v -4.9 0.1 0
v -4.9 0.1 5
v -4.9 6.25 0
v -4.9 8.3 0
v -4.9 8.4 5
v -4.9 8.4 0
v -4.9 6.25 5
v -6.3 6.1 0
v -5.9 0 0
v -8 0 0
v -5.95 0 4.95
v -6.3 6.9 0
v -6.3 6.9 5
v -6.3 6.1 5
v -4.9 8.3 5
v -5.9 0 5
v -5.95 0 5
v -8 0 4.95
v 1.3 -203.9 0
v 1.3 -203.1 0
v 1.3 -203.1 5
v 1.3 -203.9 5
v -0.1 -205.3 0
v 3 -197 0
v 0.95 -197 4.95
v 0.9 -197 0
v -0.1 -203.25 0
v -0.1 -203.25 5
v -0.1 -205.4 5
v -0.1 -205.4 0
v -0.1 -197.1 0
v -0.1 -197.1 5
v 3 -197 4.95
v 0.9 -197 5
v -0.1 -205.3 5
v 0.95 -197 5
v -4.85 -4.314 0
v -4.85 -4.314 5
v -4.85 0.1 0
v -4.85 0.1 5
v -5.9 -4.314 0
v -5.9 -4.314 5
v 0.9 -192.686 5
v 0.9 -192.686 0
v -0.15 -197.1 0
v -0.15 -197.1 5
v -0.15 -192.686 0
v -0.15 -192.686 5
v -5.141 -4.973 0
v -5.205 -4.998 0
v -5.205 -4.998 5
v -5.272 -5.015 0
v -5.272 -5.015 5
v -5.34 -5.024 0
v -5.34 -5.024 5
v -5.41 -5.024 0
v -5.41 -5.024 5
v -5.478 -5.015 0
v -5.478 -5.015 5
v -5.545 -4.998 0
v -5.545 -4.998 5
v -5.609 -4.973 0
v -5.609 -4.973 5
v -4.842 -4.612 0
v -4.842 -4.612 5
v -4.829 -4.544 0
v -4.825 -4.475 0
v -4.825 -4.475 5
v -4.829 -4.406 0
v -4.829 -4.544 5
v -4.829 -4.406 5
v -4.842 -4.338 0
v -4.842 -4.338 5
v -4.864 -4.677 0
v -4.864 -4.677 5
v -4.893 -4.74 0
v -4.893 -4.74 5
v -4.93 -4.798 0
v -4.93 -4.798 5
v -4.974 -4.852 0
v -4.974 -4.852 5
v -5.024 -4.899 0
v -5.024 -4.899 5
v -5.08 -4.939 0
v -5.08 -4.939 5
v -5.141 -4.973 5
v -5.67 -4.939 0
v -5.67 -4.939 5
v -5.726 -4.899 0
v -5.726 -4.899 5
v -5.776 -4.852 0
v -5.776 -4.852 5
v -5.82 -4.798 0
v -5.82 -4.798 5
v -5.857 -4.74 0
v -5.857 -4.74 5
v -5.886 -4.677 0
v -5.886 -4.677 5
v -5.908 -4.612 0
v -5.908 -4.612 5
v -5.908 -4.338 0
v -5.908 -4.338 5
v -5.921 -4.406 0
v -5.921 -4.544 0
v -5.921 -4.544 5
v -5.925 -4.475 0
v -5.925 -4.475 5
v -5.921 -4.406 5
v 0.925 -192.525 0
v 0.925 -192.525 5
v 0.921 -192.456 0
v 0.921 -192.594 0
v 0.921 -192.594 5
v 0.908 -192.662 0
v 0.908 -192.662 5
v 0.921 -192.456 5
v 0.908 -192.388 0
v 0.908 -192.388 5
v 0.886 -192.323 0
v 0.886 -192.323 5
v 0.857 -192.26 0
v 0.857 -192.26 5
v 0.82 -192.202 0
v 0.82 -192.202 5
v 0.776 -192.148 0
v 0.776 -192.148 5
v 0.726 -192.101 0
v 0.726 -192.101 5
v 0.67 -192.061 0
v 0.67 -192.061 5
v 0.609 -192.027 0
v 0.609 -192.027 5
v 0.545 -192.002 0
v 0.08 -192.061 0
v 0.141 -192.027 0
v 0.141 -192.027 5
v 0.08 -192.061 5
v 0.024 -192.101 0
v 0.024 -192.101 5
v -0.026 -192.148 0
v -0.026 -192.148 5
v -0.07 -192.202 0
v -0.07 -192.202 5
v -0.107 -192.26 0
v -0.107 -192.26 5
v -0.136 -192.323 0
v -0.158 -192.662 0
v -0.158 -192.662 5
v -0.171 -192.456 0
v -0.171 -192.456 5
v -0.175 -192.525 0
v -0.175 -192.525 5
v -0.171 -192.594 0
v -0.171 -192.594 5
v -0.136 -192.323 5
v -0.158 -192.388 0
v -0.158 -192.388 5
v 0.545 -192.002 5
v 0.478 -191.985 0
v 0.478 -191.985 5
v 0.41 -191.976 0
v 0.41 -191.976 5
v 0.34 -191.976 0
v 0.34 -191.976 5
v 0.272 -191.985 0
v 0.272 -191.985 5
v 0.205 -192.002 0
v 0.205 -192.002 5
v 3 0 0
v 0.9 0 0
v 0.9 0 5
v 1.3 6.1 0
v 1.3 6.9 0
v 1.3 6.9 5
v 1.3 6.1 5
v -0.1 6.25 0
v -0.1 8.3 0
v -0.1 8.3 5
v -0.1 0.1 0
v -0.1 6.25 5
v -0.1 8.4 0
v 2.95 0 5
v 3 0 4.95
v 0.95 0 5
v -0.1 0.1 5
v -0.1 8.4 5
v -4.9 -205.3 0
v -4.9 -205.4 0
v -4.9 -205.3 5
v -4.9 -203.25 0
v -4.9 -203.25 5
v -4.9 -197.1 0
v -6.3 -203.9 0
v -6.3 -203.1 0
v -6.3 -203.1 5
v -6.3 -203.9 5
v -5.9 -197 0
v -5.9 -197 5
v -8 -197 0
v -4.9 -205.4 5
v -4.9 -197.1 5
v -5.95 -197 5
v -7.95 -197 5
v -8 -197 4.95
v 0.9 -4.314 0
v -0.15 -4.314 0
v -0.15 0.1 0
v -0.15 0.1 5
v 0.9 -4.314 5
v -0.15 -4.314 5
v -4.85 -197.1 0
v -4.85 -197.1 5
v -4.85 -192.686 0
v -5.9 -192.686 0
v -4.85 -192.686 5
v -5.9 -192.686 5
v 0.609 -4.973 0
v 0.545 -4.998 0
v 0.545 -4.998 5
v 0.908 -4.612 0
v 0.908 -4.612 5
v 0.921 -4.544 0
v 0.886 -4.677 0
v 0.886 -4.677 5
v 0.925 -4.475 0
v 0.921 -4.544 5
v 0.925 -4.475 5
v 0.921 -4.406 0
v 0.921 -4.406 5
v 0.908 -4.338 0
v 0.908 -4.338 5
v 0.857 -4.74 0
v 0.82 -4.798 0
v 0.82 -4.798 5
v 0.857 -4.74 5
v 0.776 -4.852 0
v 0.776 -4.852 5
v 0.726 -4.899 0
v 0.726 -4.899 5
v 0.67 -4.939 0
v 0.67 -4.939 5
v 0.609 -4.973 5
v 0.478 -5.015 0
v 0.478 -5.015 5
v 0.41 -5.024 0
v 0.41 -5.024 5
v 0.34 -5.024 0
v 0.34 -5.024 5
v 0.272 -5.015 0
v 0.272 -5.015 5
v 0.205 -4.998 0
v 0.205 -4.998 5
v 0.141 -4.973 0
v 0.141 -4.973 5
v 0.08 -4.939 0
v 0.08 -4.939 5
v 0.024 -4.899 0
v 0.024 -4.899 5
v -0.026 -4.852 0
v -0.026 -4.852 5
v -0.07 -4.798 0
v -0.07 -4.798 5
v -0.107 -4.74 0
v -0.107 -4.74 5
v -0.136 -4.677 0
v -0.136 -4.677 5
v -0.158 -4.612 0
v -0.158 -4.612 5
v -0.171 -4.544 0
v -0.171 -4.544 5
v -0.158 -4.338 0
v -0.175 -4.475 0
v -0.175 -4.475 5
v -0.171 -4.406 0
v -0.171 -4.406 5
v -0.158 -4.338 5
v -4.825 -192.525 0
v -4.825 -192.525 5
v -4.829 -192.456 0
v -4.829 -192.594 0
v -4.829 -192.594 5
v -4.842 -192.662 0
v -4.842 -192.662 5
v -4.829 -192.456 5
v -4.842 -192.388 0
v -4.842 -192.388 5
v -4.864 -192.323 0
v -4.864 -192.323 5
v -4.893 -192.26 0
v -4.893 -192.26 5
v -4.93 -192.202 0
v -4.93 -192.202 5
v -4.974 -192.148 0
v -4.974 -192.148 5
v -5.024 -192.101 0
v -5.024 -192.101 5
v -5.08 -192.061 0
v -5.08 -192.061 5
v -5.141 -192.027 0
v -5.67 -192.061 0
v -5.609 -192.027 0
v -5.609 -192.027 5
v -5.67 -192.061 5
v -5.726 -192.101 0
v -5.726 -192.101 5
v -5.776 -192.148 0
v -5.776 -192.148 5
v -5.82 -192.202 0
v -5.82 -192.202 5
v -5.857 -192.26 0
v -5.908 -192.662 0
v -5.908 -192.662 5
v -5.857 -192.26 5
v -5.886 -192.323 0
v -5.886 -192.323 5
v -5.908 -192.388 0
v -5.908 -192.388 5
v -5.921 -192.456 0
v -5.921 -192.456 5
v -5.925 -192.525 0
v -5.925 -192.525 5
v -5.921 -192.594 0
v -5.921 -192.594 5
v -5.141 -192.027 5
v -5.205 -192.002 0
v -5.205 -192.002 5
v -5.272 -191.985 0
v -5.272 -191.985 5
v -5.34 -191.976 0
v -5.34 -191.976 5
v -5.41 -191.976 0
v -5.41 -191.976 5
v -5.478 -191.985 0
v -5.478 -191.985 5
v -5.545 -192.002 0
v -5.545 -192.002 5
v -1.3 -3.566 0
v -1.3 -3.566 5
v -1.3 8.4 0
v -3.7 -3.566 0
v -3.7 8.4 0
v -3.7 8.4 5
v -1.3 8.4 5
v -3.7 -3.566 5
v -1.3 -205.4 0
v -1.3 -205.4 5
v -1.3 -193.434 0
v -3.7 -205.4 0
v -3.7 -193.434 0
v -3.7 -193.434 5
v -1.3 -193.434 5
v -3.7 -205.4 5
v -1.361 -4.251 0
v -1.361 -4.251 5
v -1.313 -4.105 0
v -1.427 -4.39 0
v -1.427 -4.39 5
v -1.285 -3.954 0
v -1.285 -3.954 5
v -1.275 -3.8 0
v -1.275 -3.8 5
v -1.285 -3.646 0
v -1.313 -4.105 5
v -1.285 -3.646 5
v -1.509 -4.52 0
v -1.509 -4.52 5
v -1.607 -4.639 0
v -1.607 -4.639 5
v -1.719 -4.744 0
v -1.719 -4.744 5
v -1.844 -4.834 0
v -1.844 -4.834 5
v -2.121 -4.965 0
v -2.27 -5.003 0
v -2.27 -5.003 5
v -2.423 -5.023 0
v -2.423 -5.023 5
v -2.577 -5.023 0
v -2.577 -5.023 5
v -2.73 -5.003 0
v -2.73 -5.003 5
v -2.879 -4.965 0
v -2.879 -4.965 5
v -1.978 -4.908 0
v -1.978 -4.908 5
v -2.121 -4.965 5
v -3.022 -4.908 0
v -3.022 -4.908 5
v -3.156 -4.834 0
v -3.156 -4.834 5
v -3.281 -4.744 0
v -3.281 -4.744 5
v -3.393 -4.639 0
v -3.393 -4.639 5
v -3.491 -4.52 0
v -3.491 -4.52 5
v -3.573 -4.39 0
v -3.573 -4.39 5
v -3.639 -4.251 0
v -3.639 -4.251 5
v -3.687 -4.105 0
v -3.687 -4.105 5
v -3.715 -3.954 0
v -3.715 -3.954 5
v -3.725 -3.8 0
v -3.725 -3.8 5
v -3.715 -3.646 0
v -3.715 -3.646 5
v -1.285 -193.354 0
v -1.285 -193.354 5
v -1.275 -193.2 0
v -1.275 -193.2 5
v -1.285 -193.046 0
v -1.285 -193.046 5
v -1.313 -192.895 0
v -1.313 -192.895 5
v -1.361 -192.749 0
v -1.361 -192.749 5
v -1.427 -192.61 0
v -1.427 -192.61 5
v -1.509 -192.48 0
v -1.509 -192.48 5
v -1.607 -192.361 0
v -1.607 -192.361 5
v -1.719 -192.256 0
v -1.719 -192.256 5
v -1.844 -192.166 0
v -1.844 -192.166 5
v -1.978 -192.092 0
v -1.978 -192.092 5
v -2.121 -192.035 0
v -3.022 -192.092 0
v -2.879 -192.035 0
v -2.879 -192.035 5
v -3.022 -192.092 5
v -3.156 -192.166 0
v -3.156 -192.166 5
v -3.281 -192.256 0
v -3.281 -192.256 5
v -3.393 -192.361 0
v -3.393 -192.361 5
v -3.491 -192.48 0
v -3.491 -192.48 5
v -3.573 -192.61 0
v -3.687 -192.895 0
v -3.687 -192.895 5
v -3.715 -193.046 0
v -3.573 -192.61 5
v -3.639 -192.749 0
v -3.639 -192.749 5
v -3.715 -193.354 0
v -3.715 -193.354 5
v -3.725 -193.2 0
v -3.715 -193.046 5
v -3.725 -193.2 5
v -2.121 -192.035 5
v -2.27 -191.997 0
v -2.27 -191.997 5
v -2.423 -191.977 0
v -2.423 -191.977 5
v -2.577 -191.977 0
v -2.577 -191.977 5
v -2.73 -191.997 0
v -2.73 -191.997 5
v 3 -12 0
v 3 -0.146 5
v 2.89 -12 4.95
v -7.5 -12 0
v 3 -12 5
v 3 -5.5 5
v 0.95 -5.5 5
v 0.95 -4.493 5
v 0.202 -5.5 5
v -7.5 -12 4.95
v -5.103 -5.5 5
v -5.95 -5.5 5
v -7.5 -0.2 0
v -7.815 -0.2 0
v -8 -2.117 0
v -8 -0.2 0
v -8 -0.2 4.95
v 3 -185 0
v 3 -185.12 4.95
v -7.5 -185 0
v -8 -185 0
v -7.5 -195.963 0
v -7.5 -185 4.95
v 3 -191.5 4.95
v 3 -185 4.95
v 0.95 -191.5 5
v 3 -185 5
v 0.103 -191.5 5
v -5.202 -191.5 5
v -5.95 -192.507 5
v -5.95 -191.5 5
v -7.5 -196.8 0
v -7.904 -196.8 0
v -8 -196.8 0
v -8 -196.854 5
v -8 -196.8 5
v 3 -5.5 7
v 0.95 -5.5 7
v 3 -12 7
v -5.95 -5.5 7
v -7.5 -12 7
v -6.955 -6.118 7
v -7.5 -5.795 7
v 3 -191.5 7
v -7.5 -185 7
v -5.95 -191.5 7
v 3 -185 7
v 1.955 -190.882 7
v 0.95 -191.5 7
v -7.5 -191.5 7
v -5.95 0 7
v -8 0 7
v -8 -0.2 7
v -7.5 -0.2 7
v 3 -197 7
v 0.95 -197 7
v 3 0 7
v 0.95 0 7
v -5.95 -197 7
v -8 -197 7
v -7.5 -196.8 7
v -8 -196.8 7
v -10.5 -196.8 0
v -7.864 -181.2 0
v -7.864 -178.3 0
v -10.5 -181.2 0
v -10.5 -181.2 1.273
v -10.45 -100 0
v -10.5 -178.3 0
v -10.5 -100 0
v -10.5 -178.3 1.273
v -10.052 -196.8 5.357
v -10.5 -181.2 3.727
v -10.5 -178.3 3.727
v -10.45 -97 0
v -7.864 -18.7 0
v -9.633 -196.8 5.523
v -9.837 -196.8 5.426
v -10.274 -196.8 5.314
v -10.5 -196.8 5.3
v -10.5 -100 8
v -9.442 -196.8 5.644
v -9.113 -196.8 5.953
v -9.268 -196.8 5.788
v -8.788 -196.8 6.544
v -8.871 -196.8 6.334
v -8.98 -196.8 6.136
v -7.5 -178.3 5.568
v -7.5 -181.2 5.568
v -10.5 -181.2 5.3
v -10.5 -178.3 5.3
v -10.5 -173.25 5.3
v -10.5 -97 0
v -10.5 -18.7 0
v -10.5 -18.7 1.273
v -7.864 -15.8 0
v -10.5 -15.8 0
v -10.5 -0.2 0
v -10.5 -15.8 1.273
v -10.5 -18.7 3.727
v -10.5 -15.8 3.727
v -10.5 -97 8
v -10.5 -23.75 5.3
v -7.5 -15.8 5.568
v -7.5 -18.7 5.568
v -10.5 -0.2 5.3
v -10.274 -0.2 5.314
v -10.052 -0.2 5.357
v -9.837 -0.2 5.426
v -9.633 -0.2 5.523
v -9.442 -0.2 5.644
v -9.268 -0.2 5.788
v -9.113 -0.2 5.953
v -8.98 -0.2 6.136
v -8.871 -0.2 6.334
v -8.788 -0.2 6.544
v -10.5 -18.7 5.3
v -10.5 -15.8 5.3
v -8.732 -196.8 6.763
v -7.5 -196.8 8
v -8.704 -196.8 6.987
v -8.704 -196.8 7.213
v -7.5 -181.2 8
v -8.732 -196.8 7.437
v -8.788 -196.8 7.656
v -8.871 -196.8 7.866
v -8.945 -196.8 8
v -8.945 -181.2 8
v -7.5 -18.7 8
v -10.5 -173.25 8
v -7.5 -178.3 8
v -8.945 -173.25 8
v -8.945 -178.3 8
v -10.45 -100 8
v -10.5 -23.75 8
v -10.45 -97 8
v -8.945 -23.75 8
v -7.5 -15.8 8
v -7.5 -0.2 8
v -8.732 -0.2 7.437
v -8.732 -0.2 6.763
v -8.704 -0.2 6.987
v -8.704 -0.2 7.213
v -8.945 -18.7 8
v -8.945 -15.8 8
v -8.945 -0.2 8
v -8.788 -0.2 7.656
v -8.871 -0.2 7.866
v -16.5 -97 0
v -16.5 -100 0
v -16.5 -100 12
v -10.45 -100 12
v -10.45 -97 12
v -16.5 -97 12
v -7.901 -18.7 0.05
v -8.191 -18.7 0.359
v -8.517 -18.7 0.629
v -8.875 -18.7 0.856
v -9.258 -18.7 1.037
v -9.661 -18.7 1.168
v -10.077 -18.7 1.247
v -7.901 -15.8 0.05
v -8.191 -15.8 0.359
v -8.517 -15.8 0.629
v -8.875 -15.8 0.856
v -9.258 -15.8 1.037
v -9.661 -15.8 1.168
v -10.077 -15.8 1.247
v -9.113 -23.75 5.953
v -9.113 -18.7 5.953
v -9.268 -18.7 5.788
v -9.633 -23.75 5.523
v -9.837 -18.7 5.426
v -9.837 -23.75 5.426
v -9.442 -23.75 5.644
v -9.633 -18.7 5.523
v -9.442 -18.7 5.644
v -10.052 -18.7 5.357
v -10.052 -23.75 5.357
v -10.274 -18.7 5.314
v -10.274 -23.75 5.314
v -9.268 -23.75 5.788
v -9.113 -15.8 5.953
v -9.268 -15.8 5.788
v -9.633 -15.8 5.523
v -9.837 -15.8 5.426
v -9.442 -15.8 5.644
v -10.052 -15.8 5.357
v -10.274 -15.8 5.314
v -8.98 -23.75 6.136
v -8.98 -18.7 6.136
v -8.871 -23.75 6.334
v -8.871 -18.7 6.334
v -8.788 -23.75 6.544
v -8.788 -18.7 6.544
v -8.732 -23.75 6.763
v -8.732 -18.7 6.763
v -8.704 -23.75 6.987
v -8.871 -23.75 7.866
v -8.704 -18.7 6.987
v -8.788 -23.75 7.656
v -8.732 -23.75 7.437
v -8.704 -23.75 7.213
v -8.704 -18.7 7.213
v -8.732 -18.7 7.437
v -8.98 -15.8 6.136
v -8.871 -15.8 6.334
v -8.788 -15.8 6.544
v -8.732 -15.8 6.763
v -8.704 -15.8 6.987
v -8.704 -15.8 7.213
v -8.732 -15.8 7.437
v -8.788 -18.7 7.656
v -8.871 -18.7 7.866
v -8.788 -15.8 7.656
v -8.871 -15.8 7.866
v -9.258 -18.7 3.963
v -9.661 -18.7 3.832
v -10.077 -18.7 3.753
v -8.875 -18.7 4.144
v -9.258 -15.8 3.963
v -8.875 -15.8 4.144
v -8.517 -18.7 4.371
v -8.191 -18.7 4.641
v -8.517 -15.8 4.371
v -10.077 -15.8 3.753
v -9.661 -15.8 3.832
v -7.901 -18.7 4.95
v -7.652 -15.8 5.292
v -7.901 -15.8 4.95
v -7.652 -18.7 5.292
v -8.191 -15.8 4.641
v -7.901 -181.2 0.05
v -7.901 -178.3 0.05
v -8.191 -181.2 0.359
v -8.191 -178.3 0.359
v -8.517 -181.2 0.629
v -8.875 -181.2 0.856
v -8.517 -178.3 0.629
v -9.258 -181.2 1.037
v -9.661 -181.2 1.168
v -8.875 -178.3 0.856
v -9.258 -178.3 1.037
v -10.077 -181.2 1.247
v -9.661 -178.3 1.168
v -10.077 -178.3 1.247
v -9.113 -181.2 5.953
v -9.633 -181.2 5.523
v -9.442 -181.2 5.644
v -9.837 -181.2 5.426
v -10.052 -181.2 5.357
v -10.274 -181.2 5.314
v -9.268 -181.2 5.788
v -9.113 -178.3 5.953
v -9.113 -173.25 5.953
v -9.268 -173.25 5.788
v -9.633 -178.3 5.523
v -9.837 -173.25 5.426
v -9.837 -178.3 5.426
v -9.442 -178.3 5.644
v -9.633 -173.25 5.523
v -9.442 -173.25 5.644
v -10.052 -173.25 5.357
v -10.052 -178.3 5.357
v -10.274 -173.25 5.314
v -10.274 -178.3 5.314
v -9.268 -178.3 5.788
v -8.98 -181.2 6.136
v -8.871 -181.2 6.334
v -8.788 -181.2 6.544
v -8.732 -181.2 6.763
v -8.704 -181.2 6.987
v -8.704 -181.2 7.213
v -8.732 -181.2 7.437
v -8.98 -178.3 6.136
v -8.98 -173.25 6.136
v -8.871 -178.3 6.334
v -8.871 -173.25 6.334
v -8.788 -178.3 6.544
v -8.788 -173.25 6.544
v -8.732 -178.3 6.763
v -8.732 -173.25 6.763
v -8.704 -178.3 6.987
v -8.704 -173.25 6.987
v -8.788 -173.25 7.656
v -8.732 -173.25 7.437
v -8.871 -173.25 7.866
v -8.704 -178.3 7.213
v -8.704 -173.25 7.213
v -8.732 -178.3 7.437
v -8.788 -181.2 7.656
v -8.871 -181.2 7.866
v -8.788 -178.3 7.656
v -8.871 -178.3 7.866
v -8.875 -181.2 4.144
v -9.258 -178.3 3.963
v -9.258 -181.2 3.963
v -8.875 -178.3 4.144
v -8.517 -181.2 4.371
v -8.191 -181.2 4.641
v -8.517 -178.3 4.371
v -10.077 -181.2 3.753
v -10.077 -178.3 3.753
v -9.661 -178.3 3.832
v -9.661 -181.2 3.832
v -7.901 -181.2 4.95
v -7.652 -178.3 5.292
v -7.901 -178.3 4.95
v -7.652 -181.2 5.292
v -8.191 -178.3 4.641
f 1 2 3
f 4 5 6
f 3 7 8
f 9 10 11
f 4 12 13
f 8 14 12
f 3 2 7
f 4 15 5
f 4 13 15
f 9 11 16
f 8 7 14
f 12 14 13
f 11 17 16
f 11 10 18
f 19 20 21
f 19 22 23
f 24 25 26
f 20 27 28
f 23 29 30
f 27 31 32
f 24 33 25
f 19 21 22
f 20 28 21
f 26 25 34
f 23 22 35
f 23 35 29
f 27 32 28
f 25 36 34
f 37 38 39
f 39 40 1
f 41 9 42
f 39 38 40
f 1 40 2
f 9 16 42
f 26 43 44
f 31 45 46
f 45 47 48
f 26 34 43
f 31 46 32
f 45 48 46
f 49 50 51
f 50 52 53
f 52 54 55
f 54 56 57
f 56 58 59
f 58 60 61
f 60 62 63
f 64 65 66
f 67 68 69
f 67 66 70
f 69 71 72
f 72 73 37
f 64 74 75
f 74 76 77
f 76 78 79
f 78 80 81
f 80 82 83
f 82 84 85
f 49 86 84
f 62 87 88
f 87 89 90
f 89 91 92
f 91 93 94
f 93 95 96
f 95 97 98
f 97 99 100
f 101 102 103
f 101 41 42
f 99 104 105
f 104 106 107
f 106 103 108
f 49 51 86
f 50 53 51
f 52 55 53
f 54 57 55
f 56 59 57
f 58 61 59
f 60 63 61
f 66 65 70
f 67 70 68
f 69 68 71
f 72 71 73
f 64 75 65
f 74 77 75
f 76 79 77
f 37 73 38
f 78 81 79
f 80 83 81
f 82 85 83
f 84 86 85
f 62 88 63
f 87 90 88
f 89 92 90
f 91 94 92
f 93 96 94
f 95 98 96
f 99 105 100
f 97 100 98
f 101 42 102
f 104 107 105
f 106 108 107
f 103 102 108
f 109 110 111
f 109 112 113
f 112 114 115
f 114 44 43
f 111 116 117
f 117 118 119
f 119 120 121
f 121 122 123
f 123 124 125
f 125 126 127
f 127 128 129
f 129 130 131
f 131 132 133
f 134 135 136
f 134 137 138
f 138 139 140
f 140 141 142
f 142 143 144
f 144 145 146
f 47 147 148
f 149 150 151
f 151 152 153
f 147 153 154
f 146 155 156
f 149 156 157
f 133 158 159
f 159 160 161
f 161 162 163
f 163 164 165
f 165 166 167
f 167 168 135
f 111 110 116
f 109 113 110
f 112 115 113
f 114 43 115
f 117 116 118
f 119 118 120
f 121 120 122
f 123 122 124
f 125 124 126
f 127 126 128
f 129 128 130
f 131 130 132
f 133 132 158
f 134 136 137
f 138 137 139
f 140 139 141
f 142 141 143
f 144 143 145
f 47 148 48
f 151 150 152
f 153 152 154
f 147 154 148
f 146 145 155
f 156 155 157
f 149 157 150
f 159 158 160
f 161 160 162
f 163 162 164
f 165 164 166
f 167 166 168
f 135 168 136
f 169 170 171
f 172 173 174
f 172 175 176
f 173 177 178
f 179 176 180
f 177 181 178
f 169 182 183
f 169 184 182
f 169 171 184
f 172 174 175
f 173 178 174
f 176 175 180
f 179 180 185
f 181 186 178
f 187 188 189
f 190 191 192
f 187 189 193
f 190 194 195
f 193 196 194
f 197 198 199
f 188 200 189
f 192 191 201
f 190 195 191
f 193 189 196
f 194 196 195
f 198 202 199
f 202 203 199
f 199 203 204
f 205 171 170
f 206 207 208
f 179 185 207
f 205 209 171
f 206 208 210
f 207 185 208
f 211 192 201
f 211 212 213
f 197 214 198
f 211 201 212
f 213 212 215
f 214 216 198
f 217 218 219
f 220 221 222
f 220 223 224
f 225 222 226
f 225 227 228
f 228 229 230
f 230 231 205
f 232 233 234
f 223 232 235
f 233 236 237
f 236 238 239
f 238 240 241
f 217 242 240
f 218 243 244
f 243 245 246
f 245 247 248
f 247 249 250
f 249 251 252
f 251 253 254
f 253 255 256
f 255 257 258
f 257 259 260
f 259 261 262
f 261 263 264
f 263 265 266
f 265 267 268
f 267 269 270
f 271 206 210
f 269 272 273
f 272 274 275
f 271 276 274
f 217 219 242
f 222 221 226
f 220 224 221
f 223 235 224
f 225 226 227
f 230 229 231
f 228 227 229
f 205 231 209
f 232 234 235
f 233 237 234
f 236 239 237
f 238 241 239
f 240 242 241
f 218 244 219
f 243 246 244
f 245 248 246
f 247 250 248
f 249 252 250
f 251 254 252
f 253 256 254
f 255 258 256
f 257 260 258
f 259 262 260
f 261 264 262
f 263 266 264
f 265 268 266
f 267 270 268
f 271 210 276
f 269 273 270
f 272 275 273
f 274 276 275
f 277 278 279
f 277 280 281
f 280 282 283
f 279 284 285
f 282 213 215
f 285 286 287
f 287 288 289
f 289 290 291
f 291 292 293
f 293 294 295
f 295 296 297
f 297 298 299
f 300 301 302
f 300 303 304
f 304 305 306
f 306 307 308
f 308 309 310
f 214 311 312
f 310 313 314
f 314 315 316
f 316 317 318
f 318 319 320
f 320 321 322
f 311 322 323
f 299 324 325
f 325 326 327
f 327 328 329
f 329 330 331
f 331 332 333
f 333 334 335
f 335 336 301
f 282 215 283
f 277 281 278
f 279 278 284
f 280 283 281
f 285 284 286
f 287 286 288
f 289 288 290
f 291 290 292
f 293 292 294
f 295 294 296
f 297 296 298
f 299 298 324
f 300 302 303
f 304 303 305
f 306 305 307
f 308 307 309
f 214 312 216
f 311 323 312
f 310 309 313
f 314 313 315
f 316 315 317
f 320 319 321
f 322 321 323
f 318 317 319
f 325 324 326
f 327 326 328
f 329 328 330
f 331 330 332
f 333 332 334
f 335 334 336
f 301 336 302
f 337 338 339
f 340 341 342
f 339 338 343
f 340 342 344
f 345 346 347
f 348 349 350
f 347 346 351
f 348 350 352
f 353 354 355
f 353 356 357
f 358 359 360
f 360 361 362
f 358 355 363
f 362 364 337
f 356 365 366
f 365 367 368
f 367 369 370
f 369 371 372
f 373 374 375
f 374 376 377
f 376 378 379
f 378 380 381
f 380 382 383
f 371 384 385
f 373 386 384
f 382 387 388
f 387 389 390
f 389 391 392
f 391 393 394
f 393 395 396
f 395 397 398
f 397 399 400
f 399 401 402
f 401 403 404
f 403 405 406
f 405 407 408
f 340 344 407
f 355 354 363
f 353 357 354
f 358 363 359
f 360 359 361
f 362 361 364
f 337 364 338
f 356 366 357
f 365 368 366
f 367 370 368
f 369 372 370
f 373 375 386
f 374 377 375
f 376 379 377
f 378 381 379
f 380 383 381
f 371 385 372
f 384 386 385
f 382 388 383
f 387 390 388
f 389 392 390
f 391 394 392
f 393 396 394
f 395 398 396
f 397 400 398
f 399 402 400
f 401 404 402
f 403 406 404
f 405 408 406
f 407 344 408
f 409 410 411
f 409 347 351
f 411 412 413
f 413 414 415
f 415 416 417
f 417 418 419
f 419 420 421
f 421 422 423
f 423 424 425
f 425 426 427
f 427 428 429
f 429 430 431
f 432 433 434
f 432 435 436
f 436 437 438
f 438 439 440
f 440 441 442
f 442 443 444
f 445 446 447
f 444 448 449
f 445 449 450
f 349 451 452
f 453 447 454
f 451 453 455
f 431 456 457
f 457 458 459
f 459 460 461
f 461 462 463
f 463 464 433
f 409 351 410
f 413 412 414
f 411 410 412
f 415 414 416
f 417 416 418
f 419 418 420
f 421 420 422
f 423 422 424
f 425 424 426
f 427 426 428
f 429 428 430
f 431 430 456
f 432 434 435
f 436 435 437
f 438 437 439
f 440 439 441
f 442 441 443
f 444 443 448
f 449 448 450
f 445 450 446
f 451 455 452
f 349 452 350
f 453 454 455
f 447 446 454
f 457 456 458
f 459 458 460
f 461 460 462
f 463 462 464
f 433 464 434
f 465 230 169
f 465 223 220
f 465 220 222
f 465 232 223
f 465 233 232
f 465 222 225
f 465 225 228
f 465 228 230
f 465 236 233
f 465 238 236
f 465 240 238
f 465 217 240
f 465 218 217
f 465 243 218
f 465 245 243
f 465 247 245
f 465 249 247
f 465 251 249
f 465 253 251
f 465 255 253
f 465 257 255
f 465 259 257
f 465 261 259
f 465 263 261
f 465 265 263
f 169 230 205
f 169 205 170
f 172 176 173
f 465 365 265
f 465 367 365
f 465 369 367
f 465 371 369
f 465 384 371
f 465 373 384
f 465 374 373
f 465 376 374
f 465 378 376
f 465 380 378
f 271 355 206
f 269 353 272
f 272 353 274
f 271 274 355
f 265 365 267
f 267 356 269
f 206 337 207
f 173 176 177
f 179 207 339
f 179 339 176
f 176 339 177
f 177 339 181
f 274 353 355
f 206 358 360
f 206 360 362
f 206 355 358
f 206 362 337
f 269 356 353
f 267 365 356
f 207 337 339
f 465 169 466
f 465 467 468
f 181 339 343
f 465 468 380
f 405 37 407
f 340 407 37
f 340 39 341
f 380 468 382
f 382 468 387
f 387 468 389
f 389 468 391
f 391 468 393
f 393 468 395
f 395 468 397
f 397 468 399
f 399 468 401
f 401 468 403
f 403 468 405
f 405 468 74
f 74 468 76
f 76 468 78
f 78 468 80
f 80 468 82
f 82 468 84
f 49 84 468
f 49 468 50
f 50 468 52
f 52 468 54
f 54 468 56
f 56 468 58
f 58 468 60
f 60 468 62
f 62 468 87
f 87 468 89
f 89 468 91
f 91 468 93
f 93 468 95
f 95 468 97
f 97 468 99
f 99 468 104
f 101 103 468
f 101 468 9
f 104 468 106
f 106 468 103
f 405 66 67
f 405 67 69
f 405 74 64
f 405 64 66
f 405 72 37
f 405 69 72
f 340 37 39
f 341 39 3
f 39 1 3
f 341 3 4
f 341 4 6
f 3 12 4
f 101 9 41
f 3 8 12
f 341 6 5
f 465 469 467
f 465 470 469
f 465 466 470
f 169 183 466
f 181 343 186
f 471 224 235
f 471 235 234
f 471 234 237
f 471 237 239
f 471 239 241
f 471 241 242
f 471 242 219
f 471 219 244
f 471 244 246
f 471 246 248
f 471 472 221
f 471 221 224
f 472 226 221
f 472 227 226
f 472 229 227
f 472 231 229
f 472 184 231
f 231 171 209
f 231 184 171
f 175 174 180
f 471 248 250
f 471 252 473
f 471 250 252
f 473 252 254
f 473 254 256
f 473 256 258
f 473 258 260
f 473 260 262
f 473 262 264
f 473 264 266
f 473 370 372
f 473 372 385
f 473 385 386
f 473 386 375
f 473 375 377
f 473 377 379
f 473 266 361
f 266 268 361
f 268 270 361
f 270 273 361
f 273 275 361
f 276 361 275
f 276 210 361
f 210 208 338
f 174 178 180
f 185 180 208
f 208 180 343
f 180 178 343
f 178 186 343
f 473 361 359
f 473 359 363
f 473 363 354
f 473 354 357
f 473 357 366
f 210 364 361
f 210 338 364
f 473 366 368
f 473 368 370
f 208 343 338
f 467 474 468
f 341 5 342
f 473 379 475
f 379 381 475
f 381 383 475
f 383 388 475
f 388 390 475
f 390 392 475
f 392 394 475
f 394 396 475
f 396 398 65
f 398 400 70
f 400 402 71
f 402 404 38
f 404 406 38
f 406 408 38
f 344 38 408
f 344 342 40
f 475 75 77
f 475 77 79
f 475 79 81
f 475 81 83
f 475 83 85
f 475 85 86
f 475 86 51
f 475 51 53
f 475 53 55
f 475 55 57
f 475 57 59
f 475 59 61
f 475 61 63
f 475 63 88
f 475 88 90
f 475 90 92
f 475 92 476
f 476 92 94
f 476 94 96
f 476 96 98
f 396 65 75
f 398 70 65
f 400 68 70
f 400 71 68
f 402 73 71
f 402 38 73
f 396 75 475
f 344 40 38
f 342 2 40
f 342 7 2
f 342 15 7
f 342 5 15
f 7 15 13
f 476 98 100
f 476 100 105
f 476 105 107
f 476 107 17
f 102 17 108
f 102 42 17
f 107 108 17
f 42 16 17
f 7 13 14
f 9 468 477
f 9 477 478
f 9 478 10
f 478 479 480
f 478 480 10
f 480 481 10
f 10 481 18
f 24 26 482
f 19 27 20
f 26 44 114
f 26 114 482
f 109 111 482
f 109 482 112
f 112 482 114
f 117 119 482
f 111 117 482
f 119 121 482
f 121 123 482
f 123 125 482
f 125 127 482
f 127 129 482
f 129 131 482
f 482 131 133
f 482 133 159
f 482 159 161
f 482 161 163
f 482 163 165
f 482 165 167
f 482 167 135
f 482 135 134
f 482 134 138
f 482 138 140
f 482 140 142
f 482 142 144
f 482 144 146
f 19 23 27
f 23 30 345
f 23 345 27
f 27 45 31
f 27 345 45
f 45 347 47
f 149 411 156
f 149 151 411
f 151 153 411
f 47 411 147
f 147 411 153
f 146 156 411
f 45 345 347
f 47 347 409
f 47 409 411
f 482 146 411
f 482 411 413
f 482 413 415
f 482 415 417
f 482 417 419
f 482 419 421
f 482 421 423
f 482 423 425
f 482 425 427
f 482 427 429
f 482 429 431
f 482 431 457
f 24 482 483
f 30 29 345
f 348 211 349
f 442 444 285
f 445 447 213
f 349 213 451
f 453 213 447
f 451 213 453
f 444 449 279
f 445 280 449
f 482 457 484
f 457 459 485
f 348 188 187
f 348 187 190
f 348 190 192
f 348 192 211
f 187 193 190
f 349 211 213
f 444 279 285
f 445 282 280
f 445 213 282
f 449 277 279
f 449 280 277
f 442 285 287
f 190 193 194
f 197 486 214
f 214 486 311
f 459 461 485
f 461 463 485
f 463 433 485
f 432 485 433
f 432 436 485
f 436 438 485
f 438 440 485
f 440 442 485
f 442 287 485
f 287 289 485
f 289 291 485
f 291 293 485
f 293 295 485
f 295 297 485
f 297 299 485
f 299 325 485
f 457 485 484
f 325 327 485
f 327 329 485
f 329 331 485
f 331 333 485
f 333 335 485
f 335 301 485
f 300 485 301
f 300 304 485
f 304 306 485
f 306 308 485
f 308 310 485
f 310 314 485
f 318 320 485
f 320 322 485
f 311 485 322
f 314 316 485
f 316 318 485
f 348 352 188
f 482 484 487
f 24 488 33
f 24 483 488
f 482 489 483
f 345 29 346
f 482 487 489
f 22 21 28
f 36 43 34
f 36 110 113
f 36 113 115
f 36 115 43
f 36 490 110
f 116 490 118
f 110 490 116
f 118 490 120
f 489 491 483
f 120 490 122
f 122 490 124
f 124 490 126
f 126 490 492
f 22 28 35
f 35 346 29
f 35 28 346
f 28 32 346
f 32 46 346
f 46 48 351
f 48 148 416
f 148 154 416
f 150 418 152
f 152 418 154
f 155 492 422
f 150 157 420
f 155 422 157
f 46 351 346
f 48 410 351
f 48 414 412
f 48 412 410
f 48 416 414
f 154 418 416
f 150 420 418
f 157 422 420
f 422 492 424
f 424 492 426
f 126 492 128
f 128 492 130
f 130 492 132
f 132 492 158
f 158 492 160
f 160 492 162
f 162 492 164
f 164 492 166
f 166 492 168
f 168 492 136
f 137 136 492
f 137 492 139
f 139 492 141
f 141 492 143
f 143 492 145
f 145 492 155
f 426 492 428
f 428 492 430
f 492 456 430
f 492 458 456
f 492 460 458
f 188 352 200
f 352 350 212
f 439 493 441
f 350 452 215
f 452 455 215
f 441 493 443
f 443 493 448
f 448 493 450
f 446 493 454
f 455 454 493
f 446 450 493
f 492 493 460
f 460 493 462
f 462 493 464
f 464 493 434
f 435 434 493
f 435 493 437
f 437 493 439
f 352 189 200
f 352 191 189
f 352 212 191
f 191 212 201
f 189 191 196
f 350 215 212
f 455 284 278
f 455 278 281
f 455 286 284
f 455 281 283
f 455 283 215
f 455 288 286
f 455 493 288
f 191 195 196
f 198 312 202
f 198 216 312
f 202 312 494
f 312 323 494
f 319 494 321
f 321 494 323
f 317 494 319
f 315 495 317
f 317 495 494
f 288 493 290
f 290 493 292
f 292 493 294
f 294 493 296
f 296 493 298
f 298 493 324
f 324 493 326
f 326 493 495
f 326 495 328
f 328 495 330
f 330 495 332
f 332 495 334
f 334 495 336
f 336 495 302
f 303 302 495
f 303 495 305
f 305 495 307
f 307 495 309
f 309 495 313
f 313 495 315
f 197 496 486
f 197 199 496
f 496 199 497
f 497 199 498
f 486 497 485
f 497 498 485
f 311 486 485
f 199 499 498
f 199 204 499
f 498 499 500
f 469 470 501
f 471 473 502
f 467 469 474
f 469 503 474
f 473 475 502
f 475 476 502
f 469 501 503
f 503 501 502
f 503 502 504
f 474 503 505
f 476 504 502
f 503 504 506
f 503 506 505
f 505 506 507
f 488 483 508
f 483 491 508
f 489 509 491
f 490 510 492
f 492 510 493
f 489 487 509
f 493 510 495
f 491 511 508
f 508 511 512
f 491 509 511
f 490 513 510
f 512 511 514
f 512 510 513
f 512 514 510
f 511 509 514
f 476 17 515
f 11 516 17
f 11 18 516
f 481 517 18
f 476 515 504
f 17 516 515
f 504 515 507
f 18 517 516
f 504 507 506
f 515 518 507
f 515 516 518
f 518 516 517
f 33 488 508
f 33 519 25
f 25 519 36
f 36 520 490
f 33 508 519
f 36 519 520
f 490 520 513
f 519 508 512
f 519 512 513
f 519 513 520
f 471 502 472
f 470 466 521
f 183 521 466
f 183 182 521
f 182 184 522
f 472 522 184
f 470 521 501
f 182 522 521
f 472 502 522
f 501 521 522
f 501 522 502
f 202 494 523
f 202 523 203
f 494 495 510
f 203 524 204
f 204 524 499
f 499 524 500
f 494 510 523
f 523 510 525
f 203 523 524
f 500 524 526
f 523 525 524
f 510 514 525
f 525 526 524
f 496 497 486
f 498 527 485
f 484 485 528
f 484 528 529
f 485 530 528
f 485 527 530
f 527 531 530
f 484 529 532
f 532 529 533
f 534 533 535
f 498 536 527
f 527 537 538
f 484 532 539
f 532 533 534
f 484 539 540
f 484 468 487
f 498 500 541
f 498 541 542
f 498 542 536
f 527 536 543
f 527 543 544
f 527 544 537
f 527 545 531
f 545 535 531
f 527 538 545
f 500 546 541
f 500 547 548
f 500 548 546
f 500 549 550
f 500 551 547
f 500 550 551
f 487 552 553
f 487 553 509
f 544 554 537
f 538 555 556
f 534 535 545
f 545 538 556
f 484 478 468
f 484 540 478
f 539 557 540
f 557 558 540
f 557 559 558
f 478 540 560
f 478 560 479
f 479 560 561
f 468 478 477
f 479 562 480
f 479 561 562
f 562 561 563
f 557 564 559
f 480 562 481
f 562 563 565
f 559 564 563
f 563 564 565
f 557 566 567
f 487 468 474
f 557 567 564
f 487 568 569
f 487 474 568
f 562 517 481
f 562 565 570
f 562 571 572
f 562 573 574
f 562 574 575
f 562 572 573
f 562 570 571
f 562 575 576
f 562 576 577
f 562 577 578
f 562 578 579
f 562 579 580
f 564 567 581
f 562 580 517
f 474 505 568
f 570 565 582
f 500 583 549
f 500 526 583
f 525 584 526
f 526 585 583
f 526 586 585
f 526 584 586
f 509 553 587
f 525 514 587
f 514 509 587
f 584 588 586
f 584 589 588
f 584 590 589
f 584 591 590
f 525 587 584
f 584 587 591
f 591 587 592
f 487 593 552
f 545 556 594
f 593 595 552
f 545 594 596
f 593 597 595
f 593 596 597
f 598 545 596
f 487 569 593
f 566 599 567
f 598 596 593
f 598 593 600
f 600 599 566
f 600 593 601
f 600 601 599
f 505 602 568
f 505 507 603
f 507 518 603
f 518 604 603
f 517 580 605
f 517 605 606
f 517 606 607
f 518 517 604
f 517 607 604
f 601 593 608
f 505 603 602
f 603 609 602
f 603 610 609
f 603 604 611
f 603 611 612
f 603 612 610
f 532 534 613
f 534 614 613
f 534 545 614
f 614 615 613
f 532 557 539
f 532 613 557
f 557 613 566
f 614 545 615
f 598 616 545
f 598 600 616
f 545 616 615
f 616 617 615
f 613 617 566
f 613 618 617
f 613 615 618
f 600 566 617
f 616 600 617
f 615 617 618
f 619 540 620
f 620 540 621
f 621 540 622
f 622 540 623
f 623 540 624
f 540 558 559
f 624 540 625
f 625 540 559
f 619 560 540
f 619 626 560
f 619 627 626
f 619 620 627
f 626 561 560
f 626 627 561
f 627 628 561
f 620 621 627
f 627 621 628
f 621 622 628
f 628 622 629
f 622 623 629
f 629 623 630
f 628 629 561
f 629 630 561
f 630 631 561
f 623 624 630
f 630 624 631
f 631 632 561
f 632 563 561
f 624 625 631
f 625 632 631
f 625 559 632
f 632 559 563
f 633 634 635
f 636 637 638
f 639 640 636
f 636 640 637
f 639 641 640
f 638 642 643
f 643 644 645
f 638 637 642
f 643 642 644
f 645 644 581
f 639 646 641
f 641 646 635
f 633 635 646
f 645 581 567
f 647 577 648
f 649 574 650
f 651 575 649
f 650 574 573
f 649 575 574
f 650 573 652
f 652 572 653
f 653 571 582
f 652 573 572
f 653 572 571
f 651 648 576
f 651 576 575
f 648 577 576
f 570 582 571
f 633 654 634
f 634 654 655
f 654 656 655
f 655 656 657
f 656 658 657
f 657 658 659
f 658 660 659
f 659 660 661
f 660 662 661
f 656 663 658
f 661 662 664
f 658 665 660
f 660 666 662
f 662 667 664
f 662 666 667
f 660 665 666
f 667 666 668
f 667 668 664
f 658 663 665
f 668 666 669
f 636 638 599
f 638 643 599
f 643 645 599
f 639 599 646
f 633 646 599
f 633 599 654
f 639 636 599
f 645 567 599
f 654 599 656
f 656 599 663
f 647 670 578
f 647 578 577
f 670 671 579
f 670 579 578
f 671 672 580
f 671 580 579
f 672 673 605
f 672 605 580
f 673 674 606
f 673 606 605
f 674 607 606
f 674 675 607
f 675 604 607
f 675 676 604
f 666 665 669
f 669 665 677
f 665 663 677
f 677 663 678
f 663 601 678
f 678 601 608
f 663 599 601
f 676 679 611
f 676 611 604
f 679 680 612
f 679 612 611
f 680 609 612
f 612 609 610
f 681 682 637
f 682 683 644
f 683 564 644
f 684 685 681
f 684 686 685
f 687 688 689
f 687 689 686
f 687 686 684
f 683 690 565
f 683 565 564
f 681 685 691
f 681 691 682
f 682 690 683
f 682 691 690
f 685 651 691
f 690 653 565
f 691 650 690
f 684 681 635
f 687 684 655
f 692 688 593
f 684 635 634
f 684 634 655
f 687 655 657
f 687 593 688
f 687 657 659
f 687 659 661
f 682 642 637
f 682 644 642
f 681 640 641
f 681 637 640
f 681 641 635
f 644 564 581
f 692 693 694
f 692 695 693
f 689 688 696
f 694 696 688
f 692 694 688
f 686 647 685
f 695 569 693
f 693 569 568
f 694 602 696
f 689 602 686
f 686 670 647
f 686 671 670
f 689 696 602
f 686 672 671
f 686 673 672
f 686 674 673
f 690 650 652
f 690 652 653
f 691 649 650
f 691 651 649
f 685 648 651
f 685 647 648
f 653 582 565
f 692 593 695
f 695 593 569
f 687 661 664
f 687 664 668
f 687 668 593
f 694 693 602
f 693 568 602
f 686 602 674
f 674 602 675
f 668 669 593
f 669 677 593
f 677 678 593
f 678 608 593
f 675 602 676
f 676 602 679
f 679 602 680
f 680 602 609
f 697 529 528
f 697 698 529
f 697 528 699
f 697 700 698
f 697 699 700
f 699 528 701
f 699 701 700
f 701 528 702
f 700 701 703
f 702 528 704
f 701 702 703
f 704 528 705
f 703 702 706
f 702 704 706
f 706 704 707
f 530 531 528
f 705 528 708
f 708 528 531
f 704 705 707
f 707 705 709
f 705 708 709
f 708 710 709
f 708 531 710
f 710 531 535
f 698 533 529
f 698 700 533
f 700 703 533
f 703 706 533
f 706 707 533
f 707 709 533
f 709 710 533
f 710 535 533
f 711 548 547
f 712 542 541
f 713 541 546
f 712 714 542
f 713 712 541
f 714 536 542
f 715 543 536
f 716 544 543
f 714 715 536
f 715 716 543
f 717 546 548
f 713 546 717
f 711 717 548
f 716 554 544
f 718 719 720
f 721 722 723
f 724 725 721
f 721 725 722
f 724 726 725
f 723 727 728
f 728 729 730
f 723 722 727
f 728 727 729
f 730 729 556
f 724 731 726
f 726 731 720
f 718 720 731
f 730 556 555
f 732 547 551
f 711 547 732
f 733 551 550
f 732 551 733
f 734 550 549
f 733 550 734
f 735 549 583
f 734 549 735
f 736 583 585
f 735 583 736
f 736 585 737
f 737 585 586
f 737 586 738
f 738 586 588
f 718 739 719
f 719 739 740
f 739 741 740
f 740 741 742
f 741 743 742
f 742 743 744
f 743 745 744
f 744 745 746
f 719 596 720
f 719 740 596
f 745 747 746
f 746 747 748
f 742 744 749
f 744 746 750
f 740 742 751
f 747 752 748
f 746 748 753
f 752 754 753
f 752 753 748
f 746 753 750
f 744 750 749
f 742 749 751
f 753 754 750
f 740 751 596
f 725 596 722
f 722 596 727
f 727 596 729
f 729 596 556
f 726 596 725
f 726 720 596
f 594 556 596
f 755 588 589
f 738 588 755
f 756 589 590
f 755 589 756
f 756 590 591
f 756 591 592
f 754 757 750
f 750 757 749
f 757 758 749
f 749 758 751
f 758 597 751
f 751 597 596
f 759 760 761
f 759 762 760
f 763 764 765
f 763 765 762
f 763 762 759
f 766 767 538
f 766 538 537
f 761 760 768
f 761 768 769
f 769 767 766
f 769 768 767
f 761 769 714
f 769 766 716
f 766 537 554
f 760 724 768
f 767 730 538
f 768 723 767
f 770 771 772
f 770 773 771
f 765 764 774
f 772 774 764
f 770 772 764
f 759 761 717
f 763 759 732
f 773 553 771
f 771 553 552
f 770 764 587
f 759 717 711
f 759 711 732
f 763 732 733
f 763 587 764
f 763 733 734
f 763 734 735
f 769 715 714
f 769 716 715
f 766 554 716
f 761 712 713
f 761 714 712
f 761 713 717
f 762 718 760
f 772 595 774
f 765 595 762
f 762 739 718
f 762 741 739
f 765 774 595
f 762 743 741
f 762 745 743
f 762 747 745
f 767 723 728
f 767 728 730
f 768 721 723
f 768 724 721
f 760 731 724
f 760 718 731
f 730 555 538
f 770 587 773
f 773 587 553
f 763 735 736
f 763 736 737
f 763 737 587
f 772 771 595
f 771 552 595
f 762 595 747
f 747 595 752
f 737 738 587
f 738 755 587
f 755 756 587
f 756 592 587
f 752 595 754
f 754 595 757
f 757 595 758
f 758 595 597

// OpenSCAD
$fn = 50;

difference() {
	union() {
		translate(v = [0, 0, 0]) {
			rotate(a = [0, 0, 0]) {
				difference() {
					union() {
						translate(v = [0, 0, 2.5]) {
							rotate(a = [0, -90, 0]) {
								difference() {
									union() {
										translate(v = [0, 0, 0]) {
											rotate(a = [0, 0, 0]) {
												difference() {
													union() {
														translate(v = [-2.5, 0, 2.5]) {
															rotate(a = [0, 90.0, 0]) {
																difference() {
																	union() {
																		translate(v = [0, 0, 0]) {
																			rotate(a = [0, 0, 0]) {
																				difference() {
																					union() {
																						translate(v = [0, 0, 0]) {
																							rotate(a = [0, 0, 0]) {
																								difference() {
																									union() {
																										translate(v = [-5.5, -12.0, 0]) {
																											cube(size = [11.0, 20.4, 5.0]);
																										}
																									}
																									union() {
																										translate(v = [0, 0, -0.1]) {
																											linear_extrude(height = 5.2) {
																												polygon(points = [[-2.4, 0], [-2.4, 6.25], [-3.8, 6.1], [-3.8, 6.8999999999999995], [-2.4, 8.299999999999999], [-2.4, 9.399999999999999], [-5.7, 9.399999999999999], [-5.7, 0]]);
																											}
																										}
																										translate(v = [0, 0, -0.1]) {
																											linear_extrude(height = 5.2) {
																												polygon(points = [[-2.35, -4.5], [-2.35, -4.3875], [-2.35, -4.275], [-2.35, -4.1625], [-2.35, -4.05], [-2.35, -3.9375], [-2.35, -3.825], [-2.35, -3.7125], [-2.35, -3.6], [-2.35, -3.4875], [-2.35, -3.375], [-2.35, -3.2625], [-2.35, -3.15], [-2.35, -3.0375], [-2.35, -2.925], [-2.35, -2.8125], [-2.35, -2.7], [-2.35, -2.5875], [-2.35, -2.475], [-2.35, -2.3625], [-2.35, -2.25], [-2.35, -2.1375], [-2.35, -2.025], [-2.35, -1.9125], [-2.35, -1.7999999999999998], [-2.35, -1.6875], [-2.35, -1.5750000000000002], [-2.35, -1.4625], [-2.35, -1.35], [-2.35, -1.2374999999999998], [-2.35, -1.125], [-2.35, -1.0125000000000002], [-2.35, -0.8999999999999999], [-2.35, -0.7875000000000001], [-2.35, -0.6749999999999998], [-2.35, -0.5625], [-2.35, -0.4500000000000002], [-2.35, -0.33750000000000036], [-2.35, -0.22499999999999964], [-2.35, -0.11249999999999982], [-2.35, 0.0], [-2.35, 0.1], [-3.4, 0.1], [-3.4, -4.5]]);
																											}
																										}
																										translate(v = [-2.875, -4.475, -0.1]) {
																											cylinder(h = 5.2, r = 0.55);
																										}
																										translate(v = [0, 0, -0.1]) {
																											linear_extrude(height = 5.2) {
																												polygon(points = [[2.4, 0], [2.4, 6.25], [3.8, 6.1], [3.8, 6.8999999999999995], [2.4, 8.299999999999999], [2.4, 9.399999999999999], [5.7, 9.399999999999999], [5.7, 0]]);
																											}
																										}
																										translate(v = [0, 0, -0.1]) {
																											linear_extrude(height = 5.2) {
																												polygon(points = [[2.35, -4.5], [2.35, -4.3875], [2.35, -4.275], [2.35, -4.1625], [2.35, -4.05], [2.35, -3.9375], [2.35, -3.825], [2.35, -3.7125], [2.35, -3.6], [2.35, -3.4875], [2.35, -3.375], [2.35, -3.2625], [2.35, -3.15], [2.35, -3.0375], [2.35, -2.925], [2.35, -2.8125], [2.35, -2.7], [2.35, -2.5875], [2.35, -2.475], [2.35, -2.3625], [2.35, -2.25], [2.35, -2.1375], [2.35, -2.025], [2.35, -1.9125], [2.35, -1.7999999999999998], [2.35, -1.6875], [2.35, -1.5750000000000002], [2.35, -1.4625], [2.35, -1.35], [2.35, -1.2374999999999998], [2.35, -1.125], [2.35, -1.0125000000000002], [2.35, -0.8999999999999999], [2.35, -0.7875000000000001], [2.35, -0.6749999999999998], [2.35, -0.5625], [2.35, -0.4500000000000002], [2.35, -0.33750000000000036], [2.35, -0.22499999999999964], [2.35, -0.11249999999999982], [2.35, 0.0], [2.35, 0.1], [3.4, 0.1], [3.4, -4.5]]);
																											}
																										}
																										translate(v = [2.875, -4.475, -0.1]) {
																											cylinder(h = 5.2, r = 0.55);
																										}
																										translate(v = [0, 0, -0.1]) {
																											linear_extrude(height = 5.2) {
																												polygon(points = [[-1.2, -3.8499999999999996], [-1.2, -3.6607142857142856], [-1.2, -3.471428571428571], [-1.2, -3.2821428571428566], [-1.2, -3.0928571428571425], [-1.2, -2.9035714285714285], [-1.2, -2.714285714285714], [-1.2, -2.5249999999999995], [-1.2, -2.3357142857142854], [-1.2, -2.1464285714285714], [-1.2, -1.9571428571428569], [-1.2, -1.7678571428571423], [-1.2, -1.5785714285714283], [-1.2, -1.3892857142857138], [-1.2, -1.1999999999999997], [-1.2, -1.0107142857142852], [-1.2, -0.8214285714285712], [-1.2, -0.6321428571428567], [-1.2, -0.4428571428571426], [-1.2, -0.2535714285714281], [-1.2, -0.06428571428571406], [-1.2, 0], [-1.2, 0.12500000000000044], [-1.2, 0.31428571428571495], [-1.2, 0.503571428571429], [-1.2, 0.6928571428571431], [-1.2, 0.8821428571428571], [-1.2, 1.071428571428572], [-1.2, 1.2607142857142861], [-1.2, 1.4500000000000002], [-1.2, 1.6392857142857142], [-1.2, 1.8285714285714292], [-1.2, 2.0178571428571432], [-1.2, 2.2071428571428573], [-1.2, 2.3964285714285714], [-1.2, 2.5857142857142863], [-1.2, 2.7750000000000004], [-1.2, 2.9642857142857144], [-1.2, 3.1535714285714294], [-1.2, 3.3428571428571434], [-1.2, 3.5321428571428575], [-1.2, 3.7214285714285715], [-1.2, 3.9107142857142865], [-1.2, 4.1000000000000005], [-1.2, 4.289285714285715], [-1.2, 4.4785714285714295], [-1.2, 4.667857142857143], [-1.2, 4.857142857142858], [-1.2, 5.046428571428573], [-1.2, 5.235714285714286], [-1.2, 5.425000000000001], [-1.2, 5.614285714285714], [-1.2, 5.803571428571429], [-1.2, 5.992857142857144], [-1.2, 6.1], [-1.2, 6.182142857142857], [-1.2, 6.25], [-1.2, 6.371428571428572], [-1.2, 6.560714285714287], [-1.2, 6.75], [-1.2, 6.939285714285715], [-1.2, 7.128571428571428], [-1.2, 7.317857142857143], [-1.2, 7.507142857142858], [-1.2, 7.696428571428571], [-1.2, 7.885714285714286], [-1.2, 8.075000000000001], [-1.2, 8.264285714285714], [-1.2, 8.45357142857143], [-1.2, 8.642857142857142], [-1.2, 8.832142857142857], [-1.2, 9.021428571428572], [-1.2, 9.210714285714285], [-1.2, 9.4], [1.2, 9.4], [1.2, 9.210714285714285], [1.2, 9.021428571428572], [1.2, 8.832142857142857], [1.2, 8.642857142857142], [1.2, 8.45357142857143], [1.2, 8.264285714285714], [1.2, 8.075000000000001], [1.2, 7.885714285714286], [1.2, 7.696428571428571], [1.2, 7.507142857142858], [1.2, 7.317857142857143], [1.2, 7.128571428571428], [1.2, 6.939285714285715], [1.2, 6.75], [1.2, 6.560714285714287], [1.2, 6.371428571428572], [1.2, 6.25], [1.2, 6.182142857142857], [1.2, 6.1], [1.2, 5.992857142857144], [1.2, 5.803571428571429], [1.2, 5.614285714285714], [1.2, 5.425000000000001], [1.2, 5.235714285714286], [1.2, 5.046428571428573], [1.2, 4.857142857142858], [1.2, 4.667857142857143], [1.2, 4.4785714285714295], [1.2, 4.289285714285715], [1.2, 4.1000000000000005], [1.2, 3.9107142857142865], [1.2, 3.7214285714285715], [1.2, 3.5321428571428575], [1.2, 3.3428571428571434], [1.2, 3.1535714285714294], [1.2, 2.9642857142857144], [1.2, 2.7750000000000004], [1.2, 2.5857142857142863], [1.2, 2.3964285714285714], [1.2, 2.2071428571428573], [1.2, 2.0178571428571432], [1.2, 1.8285714285714292], [1.2, 1.6392857142857142], [1.2, 1.4500000000000002], [1.2, 1.2607142857142861], [1.2, 1.071428571428572], [1.2, 0.8821428571428571], [1.2, 0.6928571428571431], [1.2, 0.503571428571429], [1.2, 0.31428571428571495], [1.2, 0.12500000000000044], [1.2, 0], [1.2, -0.06428571428571406], [1.2, -0.2535714285714281], [1.2, -0.4428571428571426], [1.2, -0.6321428571428567], [1.2, -0.8214285714285712], [1.2, -1.0107142857142852], [1.2, -1.1999999999999997], [1.2, -1.3892857142857138], [1.2, -1.5785714285714283], [1.2, -1.7678571428571423], [1.2, -1.9571428571428569], [1.2, -2.1464285714285714], [1.2, -2.3357142857142854], [1.2, -2.5249999999999995], [1.2, -2.714285714285714], [1.2, -2.9035714285714285], [1.2, -3.0928571428571425], [1.2, -3.2821428571428566], [1.2, -3.471428571428571], [1.2, -3.6607142857142856], [1.2, -3.8499999999999996]]);
																											}
																										}
																										translate(v = [0, -3.8, -0.1]) {
																											cylinder(h = 5.2, r = 1.2249999999999999);
																										}
																									}
																								}
																							}
																						}
																						translate(v = [0, 0, 0]) {
																							rotate(a = [0, 0, 0]) {
																								difference() {
																									union() {
																										translate(v = [-5.5, -12.0, 4.95]) {
																											cube(size = [11.0, 6.5, 2.05]);
																										}
																									}
																									union();
																								}
																							}
																						}
																						translate(v = [-5.5, -12.0, 4.95]) {
																							cube(size = [2.0500000000000003, 12.0, 2.05]);
																						}
																						translate(v = [3.4499999999999997, -12.0, 4.95]) {
																							cube(size = [2.0500000000000003, 12.0, 2.05]);
																						}
																					}
																					union();
																				}
																			}
																		}
																	}
																	union();
																}
															}
														}
													}
													union();
												}
											}
										}
										translate(v = [-2.5, -197.0, 2.5]) {
											rotate(a = [180, -90, 0]) {
												difference() {
													union() {
														translate(v = [0, 0, 0]) {
															rotate(a = [0, 0, 0]) {
																difference() {
																	union() {
																		translate(v = [0, 0, 0]) {
																			rotate(a = [0, 0, 0]) {
																				difference() {
																					union() {
																						translate(v = [-5.5, -12.0, 0]) {
																							cube(size = [11.0, 20.4, 5.0]);
																						}
																					}
																					union() {
																						translate(v = [0, 0, -0.1]) {
																							linear_extrude(height = 5.2) {
																								polygon(points = [[-2.4, 0], [-2.4, 6.25], [-3.8, 6.1], [-3.8, 6.8999999999999995], [-2.4, 8.299999999999999], [-2.4, 9.399999999999999], [-5.7, 9.399999999999999], [-5.7, 0]]);
																							}
																						}
																						translate(v = [0, 0, -0.1]) {
																							linear_extrude(height = 5.2) {
																								polygon(points = [[-2.35, -4.5], [-2.35, -4.3875], [-2.35, -4.275], [-2.35, -4.1625], [-2.35, -4.05], [-2.35, -3.9375], [-2.35, -3.825], [-2.35, -3.7125], [-2.35, -3.6], [-2.35, -3.4875], [-2.35, -3.375], [-2.35, -3.2625], [-2.35, -3.15], [-2.35, -3.0375], [-2.35, -2.925], [-2.35, -2.8125], [-2.35, -2.7], [-2.35, -2.5875], [-2.35, -2.475], [-2.35, -2.3625], [-2.35, -2.25], [-2.35, -2.1375], [-2.35, -2.025], [-2.35, -1.9125], [-2.35, -1.7999999999999998], [-2.35, -1.6875], [-2.35, -1.5750000000000002], [-2.35, -1.4625], [-2.35, -1.35], [-2.35, -1.2374999999999998], [-2.35, -1.125], [-2.35, -1.0125000000000002], [-2.35, -0.8999999999999999], [-2.35, -0.7875000000000001], [-2.35, -0.6749999999999998], [-2.35, -0.5625], [-2.35, -0.4500000000000002], [-2.35, -0.33750000000000036], [-2.35, -0.22499999999999964], [-2.35, -0.11249999999999982], [-2.35, 0.0], [-2.35, 0.1], [-3.4, 0.1], [-3.4, -4.5]]);
																							}
																						}
																						translate(v = [-2.875, -4.475, -0.1]) {
																							cylinder(h = 5.2, r = 0.55);
																						}
																						translate(v = [0, 0, -0.1]) {
																							linear_extrude(height = 5.2) {
																								polygon(points = [[2.4, 0], [2.4, 6.25], [3.8, 6.1], [3.8, 6.8999999999999995], [2.4, 8.299999999999999], [2.4, 9.399999999999999], [5.7, 9.399999999999999], [5.7, 0]]);
																							}
																						}
																						translate(v = [0, 0, -0.1]) {
																							linear_extrude(height = 5.2) {
																								polygon(points = [[2.35, -4.5], [2.35, -4.3875], [2.35, -4.275], [2.35, -4.1625], [2.35, -4.05], [2.35, -3.9375], [2.35, -3.825], [2.35, -3.7125], [2.35, -3.6], [2.35, -3.4875], [2.35, -3.375], [2.35, -3.2625], [2.35, -3.15], [2.35, -3.0375], [2.35, -2.925], [2.35, -2.8125], [2.35, -2.7], [2.35, -2.5875], [2.35, -2.475], [2.35, -2.3625], [2.35, -2.25], [2.35, -2.1375], [2.35, -2.025], [2.35, -1.9125], [2.35, -1.7999999999999998], [2.35, -1.6875], [2.35, -1.5750000000000002], [2.35, -1.4625], [2.35, -1.35], [2.35, -1.2374999999999998], [2.35, -1.125], [2.35, -1.0125000000000002], [2.35, -0.8999999999999999], [2.35, -0.7875000000000001], [2.35, -0.6749999999999998], [2.35, -0.5625], [2.35, -0.4500000000000002], [2.35, -0.33750000000000036], [2.35, -0.22499999999999964], [2.35, -0.11249999999999982], [2.35, 0.0], [2.35, 0.1], [3.4, 0.1], [3.4, -4.5]]);
																							}
																						}
																						translate(v = [2.875, -4.475, -0.1]) {
																							cylinder(h = 5.2, r = 0.55);
																						}
																						translate(v = [0, 0, -0.1]) {
																							linear_extrude(height = 5.2) {
																								polygon(points = [[-1.2, -3.8499999999999996], [-1.2, -3.6607142857142856], [-1.2, -3.471428571428571], [-1.2, -3.2821428571428566], [-1.2, -3.0928571428571425], [-1.2, -2.9035714285714285], [-1.2, -2.714285714285714], [-1.2, -2.5249999999999995], [-1.2, -2.3357142857142854], [-1.2, -2.1464285714285714], [-1.2, -1.9571428571428569], [-1.2, -1.7678571428571423], [-1.2, -1.5785714285714283], [-1.2, -1.3892857142857138], [-1.2, -1.1999999999999997], [-1.2, -1.0107142857142852], [-1.2, -0.8214285714285712], [-1.2, -0.6321428571428567], [-1.2, -0.4428571428571426], [-1.2, -0.2535714285714281], [-1.2, -0.06428571428571406], [-1.2, 0], [-1.2, 0.12500000000000044], [-1.2, 0.31428571428571495], [-1.2, 0.503571428571429], [-1.2, 0.6928571428571431], [-1.2, 0.8821428571428571], [-1.2, 1.071428571428572], [-1.2, 1.2607142857142861], [-1.2, 1.4500000000000002], [-1.2, 1.6392857142857142], [-1.2, 1.8285714285714292], [-1.2, 2.0178571428571432], [-1.2, 2.2071428571428573], [-1.2, 2.3964285714285714], [-1.2, 2.5857142857142863], [-1.2, 2.7750000000000004], [-1.2, 2.9642857142857144], [-1.2, 3.1535714285714294], [-1.2, 3.3428571428571434], [-1.2, 3.5321428571428575], [-1.2, 3.7214285714285715], [-1.2, 3.9107142857142865], [-1.2, 4.1000000000000005], [-1.2, 4.289285714285715], [-1.2, 4.4785714285714295], [-1.2, 4.667857142857143], [-1.2, 4.857142857142858], [-1.2, 5.046428571428573], [-1.2, 5.235714285714286], [-1.2, 5.425000000000001], [-1.2, 5.614285714285714], [-1.2, 5.803571428571429], [-1.2, 5.992857142857144], [-1.2, 6.1], [-1.2, 6.182142857142857], [-1.2, 6.25], [-1.2, 6.371428571428572], [-1.2, 6.560714285714287], [-1.2, 6.75], [-1.2, 6.939285714285715], [-1.2, 7.128571428571428], [-1.2, 7.317857142857143], [-1.2, 7.507142857142858], [-1.2, 7.696428571428571], [-1.2, 7.885714285714286], [-1.2, 8.075000000000001], [-1.2, 8.264285714285714], [-1.2, 8.45357142857143], [-1.2, 8.642857142857142], [-1.2, 8.832142857142857], [-1.2, 9.021428571428572], [-1.2, 9.210714285714285], [-1.2, 9.4], [1.2, 9.4], [1.2, 9.210714285714285], [1.2, 9.021428571428572], [1.2, 8.832142857142857], [1.2, 8.642857142857142], [1.2, 8.45357142857143], [1.2, 8.264285714285714], [1.2, 8.075000000000001], [1.2, 7.885714285714286], [1.2, 7.696428571428571], [1.2, 7.507142857142858], [1.2, 7.317857142857143], [1.2, 7.128571428571428], [1.2, 6.939285714285715], [1.2, 6.75], [1.2, 6.560714285714287], [1.2, 6.371428571428572], [1.2, 6.25], [1.2, 6.182142857142857], [1.2, 6.1], [1.2, 5.992857142857144], [1.2, 5.803571428571429], [1.2, 5.614285714285714], [1.2, 5.425000000000001], [1.2, 5.235714285714286], [1.2, 5.046428571428573], [1.2, 4.857142857142858], [1.2, 4.667857142857143], [1.2, 4.4785714285714295], [1.2, 4.289285714285715], [1.2, 4.1000000000000005], [1.2, 3.9107142857142865], [1.2, 3.7214285714285715], [1.2, 3.5321428571428575], [1.2, 3.3428571428571434], [1.2, 3.1535714285714294], [1.2, 2.9642857142857144], [1.2, 2.7750000000000004], [1.2, 2.5857142857142863], [1.2, 2.3964285714285714], [1.2, 2.2071428571428573], [1.2, 2.0178571428571432], [1.2, 1.8285714285714292], [1.2, 1.6392857142857142], [1.2, 1.4500000000000002], [1.2, 1.2607142857142861], [1.2, 1.071428571428572], [1.2, 0.8821428571428571], [1.2, 0.6928571428571431], [1.2, 0.503571428571429], [1.2, 0.31428571428571495], [1.2, 0.12500000000000044], [1.2, 0], [1.2, -0.06428571428571406], [1.2, -0.2535714285714281], [1.2, -0.4428571428571426], [1.2, -0.6321428571428567], [1.2, -0.8214285714285712], [1.2, -1.0107142857142852], [1.2, -1.1999999999999997], [1.2, -1.3892857142857138], [1.2, -1.5785714285714283], [1.2, -1.7678571428571423], [1.2, -1.9571428571428569], [1.2, -2.1464285714285714], [1.2, -2.3357142857142854], [1.2, -2.5249999999999995], [1.2, -2.714285714285714], [1.2, -2.9035714285714285], [1.2, -3.0928571428571425], [1.2, -3.2821428571428566], [1.2, -3.471428571428571], [1.2, -3.6607142857142856], [1.2, -3.8499999999999996]]);
																							}
																						}
																						translate(v = [0, -3.8, -0.1]) {
																							cylinder(h = 5.2, r = 1.2249999999999999);
																						}
																					}
																				}
																			}
																		}
																		translate(v = [0, 0, 0]) {
																			rotate(a = [0, 0, 0]) {
																				difference() {
																					union() {
																						translate(v = [-5.5, -12.0, 4.95]) {
																							cube(size = [11.0, 6.5, 2.05]);
																						}
																					}
																					union();
																				}
																			}
																		}
																		translate(v = [-5.5, -12.0, 4.95]) {
																			cube(size = [2.0500000000000003, 12.0, 2.05]);
																		}
																		translate(v = [3.4499999999999997, -12.0, 4.95]) {
																			cube(size = [2.0500000000000003, 12.0, 2.05]);
																		}
																	}
																	union();
																}
															}
														}
													}
													union();
												}
											}
										}
										translate(v = [-2.5, -196.8, 7.5]) {
											cube(size = [8.0, 196.6, 3.0]);
										}
										translate(v = [-2.5, -100.0, 10.45]) {
											cube(size = [12.0, 3.0, 6.05]);
										}
									}
									union() {
										translate(v = [-4.600000000500003, 0.1, 10.5]) {
											rotate(a = [90, 0, 0]) {
												cylinder(h = 23.85, r = 1.8);
											}
										}
										translate(v = [-4.600000000500003, -15.8, 10.5]) {
											rotate(a = [90, 0, 0]) {
												cylinder(h = 2.9, r = 3.3735);
											}
										}
										translate(v = [4.600000000500003, 0.1, 10.5]) {
											rotate(a = [90, 0, 0]) {
												cylinder(h = 23.85, r = 1.8);
											}
										}
										translate(v = [4.600000000500003, -15.8, 10.5]) {
											rotate(a = [90, 0, 0]) {
												cylinder(h = 2.9, r = 3.3735);
											}
										}
										translate(v = [-4.600000000500003, -197.1, 10.5]) {
											rotate(a = [-90, 0, 0]) {
												cylinder(h = 23.85, r = 1.8);
											}
										}
										translate(v = [-4.600000000500003, -181.2, 10.5]) {
											rotate(a = [-90, 0, 0]) {
												cylinder(h = 2.9, r = 3.3735);
											}
										}
										translate(v = [4.600000000500003, -197.1, 10.5]) {
											rotate(a = [-90, 0, 0]) {
												cylinder(h = 23.85, r = 1.8);
											}
										}
										translate(v = [4.600000000500003, -181.2, 10.5]) {
											rotate(a = [-90, 0, 0]) {
												cylinder(h = 2.9, r = 3.3735);
											}
										}
									}
								}
							}
						}
					}
					union();
				}
			}
		}
	}
	union();
}
